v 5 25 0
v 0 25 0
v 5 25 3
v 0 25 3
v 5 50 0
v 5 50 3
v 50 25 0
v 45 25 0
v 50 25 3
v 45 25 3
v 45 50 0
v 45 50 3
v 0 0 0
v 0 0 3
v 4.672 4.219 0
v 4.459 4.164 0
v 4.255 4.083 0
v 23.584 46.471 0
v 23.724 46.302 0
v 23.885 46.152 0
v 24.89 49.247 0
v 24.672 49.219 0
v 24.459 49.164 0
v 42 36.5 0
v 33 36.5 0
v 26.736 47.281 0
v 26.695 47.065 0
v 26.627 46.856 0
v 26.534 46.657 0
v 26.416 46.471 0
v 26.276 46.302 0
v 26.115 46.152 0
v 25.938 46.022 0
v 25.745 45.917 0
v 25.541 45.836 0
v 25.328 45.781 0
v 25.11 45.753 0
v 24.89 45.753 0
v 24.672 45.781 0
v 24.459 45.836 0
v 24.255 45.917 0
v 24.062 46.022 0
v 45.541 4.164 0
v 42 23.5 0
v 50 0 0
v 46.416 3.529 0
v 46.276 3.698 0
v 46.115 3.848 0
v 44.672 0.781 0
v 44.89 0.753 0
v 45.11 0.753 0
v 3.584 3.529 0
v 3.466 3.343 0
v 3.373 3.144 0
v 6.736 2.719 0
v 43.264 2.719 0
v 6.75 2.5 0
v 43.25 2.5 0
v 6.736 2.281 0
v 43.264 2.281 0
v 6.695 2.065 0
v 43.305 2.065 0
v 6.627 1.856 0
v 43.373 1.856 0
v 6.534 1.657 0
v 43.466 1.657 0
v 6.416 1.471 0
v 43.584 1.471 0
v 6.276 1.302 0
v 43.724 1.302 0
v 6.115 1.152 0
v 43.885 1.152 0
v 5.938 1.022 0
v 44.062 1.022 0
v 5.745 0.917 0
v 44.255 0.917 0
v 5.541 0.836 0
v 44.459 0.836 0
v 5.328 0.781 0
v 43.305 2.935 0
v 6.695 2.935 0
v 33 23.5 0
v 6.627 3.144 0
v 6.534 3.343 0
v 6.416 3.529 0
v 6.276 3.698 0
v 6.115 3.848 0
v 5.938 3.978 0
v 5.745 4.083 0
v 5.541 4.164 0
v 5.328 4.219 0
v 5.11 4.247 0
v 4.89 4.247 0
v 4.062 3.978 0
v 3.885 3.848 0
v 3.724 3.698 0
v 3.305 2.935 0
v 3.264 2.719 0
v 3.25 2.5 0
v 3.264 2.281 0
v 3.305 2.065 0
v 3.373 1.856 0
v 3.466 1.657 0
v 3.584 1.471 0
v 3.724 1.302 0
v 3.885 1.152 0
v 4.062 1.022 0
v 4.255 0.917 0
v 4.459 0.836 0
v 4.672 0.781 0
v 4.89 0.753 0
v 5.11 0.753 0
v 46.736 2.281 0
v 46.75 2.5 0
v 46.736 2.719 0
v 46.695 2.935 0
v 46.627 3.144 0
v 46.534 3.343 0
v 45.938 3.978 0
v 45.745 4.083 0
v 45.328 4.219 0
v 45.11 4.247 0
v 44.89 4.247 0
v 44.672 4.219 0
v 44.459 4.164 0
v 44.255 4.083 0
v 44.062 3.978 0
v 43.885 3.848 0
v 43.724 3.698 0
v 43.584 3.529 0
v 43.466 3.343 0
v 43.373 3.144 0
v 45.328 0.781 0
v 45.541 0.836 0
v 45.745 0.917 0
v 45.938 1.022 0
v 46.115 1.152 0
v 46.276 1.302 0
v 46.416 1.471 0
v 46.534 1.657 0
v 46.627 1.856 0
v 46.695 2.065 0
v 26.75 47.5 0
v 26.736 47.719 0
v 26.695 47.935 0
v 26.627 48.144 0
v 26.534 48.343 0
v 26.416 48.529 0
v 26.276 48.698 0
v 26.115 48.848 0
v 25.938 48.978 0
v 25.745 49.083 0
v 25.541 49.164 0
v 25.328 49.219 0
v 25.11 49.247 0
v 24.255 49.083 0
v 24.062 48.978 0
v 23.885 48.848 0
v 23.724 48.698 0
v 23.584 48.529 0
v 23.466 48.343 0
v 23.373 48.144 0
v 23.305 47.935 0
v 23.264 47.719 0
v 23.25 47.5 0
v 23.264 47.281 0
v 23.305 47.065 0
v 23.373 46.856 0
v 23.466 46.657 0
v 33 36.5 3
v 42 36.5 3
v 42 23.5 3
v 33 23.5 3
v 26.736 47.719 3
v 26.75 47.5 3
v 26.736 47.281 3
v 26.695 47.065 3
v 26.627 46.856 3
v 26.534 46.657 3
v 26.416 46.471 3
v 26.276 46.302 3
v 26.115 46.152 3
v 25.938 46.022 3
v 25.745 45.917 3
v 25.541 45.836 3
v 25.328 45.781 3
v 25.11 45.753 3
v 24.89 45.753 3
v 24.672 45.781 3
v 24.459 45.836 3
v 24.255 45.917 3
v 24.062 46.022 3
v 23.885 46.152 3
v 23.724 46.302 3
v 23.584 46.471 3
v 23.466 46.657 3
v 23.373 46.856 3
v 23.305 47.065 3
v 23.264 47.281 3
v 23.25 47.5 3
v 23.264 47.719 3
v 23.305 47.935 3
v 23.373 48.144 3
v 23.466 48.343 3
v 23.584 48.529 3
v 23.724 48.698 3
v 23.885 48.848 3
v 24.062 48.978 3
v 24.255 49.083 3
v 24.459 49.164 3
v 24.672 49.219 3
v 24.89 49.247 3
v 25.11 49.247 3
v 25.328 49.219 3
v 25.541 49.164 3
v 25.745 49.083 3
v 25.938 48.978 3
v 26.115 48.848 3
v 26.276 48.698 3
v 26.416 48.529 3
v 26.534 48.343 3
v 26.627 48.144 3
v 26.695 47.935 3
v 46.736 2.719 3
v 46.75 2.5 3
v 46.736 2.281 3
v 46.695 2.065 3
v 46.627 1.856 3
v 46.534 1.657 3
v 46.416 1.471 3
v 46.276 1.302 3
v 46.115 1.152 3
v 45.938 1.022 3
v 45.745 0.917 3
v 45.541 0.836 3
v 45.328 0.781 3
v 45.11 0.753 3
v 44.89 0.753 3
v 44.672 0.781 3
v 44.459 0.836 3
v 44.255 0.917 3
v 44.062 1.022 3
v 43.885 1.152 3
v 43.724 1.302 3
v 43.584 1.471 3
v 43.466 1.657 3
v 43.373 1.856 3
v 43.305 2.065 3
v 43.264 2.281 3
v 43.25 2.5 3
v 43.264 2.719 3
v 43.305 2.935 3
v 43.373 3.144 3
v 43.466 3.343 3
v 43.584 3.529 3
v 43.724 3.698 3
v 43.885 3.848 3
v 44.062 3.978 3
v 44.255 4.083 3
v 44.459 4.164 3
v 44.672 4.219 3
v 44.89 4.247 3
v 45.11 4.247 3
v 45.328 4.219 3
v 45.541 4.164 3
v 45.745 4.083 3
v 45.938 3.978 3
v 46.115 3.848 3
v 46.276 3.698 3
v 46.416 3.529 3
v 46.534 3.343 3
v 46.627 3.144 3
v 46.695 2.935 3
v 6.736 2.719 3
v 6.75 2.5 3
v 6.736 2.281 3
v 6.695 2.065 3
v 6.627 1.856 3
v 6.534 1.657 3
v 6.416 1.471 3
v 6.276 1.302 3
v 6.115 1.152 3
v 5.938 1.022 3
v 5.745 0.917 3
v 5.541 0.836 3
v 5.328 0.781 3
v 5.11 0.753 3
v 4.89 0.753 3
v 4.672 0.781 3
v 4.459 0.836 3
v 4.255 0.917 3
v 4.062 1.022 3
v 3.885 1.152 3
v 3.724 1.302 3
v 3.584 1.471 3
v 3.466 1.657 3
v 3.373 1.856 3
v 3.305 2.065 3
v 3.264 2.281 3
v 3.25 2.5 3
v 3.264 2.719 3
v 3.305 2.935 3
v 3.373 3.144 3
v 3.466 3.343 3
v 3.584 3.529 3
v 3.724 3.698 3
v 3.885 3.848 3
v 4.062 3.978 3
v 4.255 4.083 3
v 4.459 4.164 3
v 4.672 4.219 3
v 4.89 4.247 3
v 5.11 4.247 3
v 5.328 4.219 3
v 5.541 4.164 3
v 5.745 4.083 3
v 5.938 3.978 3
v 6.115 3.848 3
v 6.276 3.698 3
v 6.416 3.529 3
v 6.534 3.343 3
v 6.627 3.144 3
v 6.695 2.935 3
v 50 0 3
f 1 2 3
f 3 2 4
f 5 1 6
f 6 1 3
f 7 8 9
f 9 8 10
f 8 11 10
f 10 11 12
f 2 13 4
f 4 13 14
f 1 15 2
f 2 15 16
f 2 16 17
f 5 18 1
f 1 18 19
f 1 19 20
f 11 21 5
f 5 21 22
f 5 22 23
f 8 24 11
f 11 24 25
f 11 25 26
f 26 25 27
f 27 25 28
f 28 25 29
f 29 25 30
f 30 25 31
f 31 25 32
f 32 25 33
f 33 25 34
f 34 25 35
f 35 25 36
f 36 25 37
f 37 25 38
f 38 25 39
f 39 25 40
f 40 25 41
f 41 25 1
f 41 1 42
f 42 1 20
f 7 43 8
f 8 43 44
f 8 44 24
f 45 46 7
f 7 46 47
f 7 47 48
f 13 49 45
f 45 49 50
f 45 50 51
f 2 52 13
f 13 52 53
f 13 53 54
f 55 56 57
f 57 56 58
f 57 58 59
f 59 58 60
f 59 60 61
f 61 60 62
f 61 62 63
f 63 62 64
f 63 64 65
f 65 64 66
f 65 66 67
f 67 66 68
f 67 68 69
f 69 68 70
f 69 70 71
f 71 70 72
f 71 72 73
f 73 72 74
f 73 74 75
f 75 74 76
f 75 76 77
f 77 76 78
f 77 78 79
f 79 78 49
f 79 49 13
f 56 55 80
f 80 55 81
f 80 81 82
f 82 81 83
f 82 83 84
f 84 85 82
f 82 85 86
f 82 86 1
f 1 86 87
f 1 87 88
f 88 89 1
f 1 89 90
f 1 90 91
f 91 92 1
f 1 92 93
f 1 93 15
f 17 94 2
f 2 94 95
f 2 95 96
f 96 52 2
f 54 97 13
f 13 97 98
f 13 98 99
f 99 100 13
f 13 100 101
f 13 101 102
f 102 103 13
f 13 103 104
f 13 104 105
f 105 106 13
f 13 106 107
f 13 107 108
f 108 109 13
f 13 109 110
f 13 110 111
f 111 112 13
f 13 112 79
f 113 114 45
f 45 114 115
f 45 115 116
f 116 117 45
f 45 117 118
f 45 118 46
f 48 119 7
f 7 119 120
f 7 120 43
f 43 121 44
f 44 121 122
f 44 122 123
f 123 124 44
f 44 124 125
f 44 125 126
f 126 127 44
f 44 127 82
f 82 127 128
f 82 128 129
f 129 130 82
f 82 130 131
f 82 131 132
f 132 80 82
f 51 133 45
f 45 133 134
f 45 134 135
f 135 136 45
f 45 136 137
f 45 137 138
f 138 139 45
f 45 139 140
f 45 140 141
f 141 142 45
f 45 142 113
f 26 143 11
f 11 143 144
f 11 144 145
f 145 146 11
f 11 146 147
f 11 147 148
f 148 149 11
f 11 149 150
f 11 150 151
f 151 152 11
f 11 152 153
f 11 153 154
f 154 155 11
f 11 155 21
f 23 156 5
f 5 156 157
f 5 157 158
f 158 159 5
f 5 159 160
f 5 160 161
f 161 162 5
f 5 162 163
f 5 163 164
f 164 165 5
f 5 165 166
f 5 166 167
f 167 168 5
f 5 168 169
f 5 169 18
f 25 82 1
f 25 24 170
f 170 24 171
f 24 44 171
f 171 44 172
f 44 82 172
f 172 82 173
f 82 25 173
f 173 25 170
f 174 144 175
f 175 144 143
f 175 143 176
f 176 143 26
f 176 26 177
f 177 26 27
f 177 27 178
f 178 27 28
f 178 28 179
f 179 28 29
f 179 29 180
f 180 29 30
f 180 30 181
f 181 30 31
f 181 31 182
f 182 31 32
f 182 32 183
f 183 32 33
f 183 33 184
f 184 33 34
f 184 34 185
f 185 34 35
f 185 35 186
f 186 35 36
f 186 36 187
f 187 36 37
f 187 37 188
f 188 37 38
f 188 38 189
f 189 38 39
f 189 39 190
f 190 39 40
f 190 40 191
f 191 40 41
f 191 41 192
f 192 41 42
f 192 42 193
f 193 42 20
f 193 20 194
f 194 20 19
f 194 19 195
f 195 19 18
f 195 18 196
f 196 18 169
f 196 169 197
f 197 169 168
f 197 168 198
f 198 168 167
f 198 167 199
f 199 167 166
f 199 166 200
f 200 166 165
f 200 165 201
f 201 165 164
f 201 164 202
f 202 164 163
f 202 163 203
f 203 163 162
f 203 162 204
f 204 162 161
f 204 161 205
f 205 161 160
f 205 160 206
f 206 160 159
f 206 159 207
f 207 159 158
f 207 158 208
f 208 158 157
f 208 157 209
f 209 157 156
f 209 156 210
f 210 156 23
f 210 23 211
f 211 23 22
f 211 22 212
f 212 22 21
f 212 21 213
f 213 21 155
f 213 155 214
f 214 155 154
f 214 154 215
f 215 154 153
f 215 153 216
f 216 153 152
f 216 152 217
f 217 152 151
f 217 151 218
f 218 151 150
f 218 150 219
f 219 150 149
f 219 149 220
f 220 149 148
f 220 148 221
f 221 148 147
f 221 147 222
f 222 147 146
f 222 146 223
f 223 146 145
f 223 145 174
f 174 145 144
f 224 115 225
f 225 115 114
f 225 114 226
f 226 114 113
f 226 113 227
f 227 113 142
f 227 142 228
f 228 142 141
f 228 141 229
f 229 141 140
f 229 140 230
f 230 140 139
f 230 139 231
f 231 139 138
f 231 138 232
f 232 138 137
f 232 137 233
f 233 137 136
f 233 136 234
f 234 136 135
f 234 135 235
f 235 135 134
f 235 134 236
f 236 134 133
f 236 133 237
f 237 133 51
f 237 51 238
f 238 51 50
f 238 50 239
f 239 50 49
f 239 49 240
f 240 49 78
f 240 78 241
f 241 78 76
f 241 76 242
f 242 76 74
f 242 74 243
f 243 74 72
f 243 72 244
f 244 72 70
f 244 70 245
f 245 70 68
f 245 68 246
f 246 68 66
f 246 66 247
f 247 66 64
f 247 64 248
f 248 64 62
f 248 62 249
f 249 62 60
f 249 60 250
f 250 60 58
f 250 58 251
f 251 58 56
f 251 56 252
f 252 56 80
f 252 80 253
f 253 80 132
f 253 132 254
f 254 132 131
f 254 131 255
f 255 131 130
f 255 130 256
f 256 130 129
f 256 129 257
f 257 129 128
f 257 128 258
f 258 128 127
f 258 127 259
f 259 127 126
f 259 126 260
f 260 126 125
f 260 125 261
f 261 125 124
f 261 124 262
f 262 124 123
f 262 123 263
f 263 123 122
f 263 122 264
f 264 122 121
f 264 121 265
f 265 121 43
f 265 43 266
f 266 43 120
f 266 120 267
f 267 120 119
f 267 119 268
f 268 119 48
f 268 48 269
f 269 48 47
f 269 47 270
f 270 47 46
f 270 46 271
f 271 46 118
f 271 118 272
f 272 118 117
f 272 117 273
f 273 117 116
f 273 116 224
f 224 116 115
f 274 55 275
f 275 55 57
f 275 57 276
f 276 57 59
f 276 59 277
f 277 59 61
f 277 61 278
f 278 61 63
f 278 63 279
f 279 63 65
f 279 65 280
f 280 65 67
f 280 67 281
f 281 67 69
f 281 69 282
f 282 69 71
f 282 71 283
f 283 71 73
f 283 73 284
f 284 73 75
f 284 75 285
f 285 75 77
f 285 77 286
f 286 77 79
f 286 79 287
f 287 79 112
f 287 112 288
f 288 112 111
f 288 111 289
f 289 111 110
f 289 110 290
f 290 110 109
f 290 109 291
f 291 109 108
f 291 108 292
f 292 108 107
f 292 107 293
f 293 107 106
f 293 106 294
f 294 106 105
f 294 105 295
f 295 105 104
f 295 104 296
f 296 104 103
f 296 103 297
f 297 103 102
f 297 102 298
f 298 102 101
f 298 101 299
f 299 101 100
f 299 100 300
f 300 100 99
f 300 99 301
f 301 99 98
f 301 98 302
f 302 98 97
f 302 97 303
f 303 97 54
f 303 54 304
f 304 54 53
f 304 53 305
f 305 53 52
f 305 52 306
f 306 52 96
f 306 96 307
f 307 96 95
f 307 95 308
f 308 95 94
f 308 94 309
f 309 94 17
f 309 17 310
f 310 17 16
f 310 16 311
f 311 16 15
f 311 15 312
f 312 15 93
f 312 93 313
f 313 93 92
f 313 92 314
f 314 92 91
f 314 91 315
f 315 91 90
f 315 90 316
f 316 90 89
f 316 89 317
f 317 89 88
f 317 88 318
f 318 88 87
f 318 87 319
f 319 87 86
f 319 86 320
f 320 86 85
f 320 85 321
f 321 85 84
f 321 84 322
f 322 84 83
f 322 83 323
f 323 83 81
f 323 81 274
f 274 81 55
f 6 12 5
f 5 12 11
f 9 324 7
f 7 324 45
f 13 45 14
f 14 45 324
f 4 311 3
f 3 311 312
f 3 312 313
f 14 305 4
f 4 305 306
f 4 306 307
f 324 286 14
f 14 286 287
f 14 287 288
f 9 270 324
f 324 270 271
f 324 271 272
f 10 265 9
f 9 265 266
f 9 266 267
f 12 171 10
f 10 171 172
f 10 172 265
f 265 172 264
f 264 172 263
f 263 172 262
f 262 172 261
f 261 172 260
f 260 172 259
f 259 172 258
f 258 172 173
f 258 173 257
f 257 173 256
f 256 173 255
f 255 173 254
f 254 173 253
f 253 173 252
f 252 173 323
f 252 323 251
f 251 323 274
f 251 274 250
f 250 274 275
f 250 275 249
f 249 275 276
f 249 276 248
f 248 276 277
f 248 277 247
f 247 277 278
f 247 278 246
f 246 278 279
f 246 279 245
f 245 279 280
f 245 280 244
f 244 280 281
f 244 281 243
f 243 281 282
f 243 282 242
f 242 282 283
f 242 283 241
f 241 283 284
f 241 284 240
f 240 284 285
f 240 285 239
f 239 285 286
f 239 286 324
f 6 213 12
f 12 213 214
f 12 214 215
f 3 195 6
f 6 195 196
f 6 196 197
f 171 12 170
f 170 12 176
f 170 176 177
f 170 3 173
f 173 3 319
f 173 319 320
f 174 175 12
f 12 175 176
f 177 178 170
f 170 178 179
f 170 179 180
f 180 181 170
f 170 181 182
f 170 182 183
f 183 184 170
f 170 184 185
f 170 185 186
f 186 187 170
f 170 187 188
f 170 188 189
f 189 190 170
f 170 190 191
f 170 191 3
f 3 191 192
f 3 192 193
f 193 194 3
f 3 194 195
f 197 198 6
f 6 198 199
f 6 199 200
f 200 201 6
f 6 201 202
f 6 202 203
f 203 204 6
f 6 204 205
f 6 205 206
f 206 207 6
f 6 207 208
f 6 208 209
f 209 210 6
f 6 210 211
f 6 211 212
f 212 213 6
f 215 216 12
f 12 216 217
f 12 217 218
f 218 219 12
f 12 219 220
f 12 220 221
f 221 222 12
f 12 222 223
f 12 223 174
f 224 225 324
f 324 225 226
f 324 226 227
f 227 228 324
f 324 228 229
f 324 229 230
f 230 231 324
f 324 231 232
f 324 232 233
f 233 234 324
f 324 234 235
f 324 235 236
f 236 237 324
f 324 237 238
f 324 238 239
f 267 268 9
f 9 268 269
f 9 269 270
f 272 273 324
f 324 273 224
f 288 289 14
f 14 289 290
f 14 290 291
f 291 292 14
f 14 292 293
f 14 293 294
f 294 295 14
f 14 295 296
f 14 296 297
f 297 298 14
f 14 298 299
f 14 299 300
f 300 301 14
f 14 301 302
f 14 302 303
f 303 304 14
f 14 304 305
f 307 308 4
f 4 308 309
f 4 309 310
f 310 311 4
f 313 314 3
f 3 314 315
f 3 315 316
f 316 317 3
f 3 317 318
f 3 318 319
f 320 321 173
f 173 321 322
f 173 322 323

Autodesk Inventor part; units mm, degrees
ref_plane "YZ Plane" through (0, 0, 0) normal (1, 0, 0) x (0, 1, 0)
ref_plane "XZ Plane" through (0, 0, 0) normal (0, 1, 0) x (-1, 0, 0)
ref_plane "XY Plane" through (0, 0, 0) normal (0, 0, 1) x (1, 0, 0)
sketch "Sketch1" plane through (0, 0, 0) normal (0, 0, 1) x (1, 0, 0)
  line L0 (0, 0) -> (50, 0)
  line L1 (50, 0) -> (50, 50)
  line L2 (50, 50) -> (0, 50)
  line L3 (0, 50) -> (0, 0)
  line L4 (25, 50) -> (25, 47.5)
  line L5 (0, 0) -> (5, 0)
  line L6 (5, 0) -> (5, 2.5)
  line L7 (50, 0) -> (45, 0)
  line L8 (45, 0) -> (45, 2.5)
  circle A0 centre (5, 2.5) radius 1.75
  circle A1 centre (45, 2.5) radius 1.75
  circle A2 centre (25, 47.5) radius 1.75
  line L9 (50, 50) -> (37, 50)
  line L10 (37, 50) -> (37, 30)
  line L11 (37, 30) -> (33, 30)
  line L12 (33, 30) -> (33, 23.5)
  line L13 (33, 23.5) -> (42, 23.5)
  line L14 (42, 23.5) -> (42, 36.5)
  line L15 (42, 36.5) -> (33, 36.5)
  line L16 (33, 36.5) -> (33, 30)
  dimension "d0" = 50
  dimension "d1" = 50
  dimension "d2" = 2.5
  dimension "d3" = 5
  dimension "d4" = 2.5
  dimension "d5" = 5
  dimension "d6" = 2.5
  dimension "d7" = 3.5
  dimension "d8" = 3.5
  dimension "d9" = 3.5
  dimension "d18" = 13
  dimension "d19" = 20
  dimension "d20" = 4
  dimension "d21" = 6.5
  dimension "d22" = 9
  dimension "d23" = 13
  dimension "d24" = 9
extrude "Extrusion1" add sketch "Sketch1" along normal blind 3
sketch "Sketch2" plane through (0, 0, 3) normal (0, 0, 1) x (1, 0, 0)
  line L0 (50, 50) -> (0, 50) projected
  line L1 (0, 50) -> (5, 50)
  line L2 (5, 50) -> (5, 25)
  line L3 (5, 25) -> (0, 25)
  line L4 (0, 50) -> (0, 0) projected
  line L5 (0, 25) -> (0, 50)
  line L6 (0, 50) -> (0, 25)
  line L7 (50, 0) -> (50, 50) projected
  line L8 (50, 50) -> (50, 25)
  line L9 (50, 25) -> (45, 25)
  line L10 (45, 25) -> (45, 50)
  line L11 (45, 50) -> (50, 50)
  dimension "d12" = 5
  dimension "d13" = 25
  dimension "d14" = 25
  dimension "d15" = 5
extrude "Extrusion2" cut sketch "Sketch2" against normal through all
properties part number "arm_0_bottom_case"
